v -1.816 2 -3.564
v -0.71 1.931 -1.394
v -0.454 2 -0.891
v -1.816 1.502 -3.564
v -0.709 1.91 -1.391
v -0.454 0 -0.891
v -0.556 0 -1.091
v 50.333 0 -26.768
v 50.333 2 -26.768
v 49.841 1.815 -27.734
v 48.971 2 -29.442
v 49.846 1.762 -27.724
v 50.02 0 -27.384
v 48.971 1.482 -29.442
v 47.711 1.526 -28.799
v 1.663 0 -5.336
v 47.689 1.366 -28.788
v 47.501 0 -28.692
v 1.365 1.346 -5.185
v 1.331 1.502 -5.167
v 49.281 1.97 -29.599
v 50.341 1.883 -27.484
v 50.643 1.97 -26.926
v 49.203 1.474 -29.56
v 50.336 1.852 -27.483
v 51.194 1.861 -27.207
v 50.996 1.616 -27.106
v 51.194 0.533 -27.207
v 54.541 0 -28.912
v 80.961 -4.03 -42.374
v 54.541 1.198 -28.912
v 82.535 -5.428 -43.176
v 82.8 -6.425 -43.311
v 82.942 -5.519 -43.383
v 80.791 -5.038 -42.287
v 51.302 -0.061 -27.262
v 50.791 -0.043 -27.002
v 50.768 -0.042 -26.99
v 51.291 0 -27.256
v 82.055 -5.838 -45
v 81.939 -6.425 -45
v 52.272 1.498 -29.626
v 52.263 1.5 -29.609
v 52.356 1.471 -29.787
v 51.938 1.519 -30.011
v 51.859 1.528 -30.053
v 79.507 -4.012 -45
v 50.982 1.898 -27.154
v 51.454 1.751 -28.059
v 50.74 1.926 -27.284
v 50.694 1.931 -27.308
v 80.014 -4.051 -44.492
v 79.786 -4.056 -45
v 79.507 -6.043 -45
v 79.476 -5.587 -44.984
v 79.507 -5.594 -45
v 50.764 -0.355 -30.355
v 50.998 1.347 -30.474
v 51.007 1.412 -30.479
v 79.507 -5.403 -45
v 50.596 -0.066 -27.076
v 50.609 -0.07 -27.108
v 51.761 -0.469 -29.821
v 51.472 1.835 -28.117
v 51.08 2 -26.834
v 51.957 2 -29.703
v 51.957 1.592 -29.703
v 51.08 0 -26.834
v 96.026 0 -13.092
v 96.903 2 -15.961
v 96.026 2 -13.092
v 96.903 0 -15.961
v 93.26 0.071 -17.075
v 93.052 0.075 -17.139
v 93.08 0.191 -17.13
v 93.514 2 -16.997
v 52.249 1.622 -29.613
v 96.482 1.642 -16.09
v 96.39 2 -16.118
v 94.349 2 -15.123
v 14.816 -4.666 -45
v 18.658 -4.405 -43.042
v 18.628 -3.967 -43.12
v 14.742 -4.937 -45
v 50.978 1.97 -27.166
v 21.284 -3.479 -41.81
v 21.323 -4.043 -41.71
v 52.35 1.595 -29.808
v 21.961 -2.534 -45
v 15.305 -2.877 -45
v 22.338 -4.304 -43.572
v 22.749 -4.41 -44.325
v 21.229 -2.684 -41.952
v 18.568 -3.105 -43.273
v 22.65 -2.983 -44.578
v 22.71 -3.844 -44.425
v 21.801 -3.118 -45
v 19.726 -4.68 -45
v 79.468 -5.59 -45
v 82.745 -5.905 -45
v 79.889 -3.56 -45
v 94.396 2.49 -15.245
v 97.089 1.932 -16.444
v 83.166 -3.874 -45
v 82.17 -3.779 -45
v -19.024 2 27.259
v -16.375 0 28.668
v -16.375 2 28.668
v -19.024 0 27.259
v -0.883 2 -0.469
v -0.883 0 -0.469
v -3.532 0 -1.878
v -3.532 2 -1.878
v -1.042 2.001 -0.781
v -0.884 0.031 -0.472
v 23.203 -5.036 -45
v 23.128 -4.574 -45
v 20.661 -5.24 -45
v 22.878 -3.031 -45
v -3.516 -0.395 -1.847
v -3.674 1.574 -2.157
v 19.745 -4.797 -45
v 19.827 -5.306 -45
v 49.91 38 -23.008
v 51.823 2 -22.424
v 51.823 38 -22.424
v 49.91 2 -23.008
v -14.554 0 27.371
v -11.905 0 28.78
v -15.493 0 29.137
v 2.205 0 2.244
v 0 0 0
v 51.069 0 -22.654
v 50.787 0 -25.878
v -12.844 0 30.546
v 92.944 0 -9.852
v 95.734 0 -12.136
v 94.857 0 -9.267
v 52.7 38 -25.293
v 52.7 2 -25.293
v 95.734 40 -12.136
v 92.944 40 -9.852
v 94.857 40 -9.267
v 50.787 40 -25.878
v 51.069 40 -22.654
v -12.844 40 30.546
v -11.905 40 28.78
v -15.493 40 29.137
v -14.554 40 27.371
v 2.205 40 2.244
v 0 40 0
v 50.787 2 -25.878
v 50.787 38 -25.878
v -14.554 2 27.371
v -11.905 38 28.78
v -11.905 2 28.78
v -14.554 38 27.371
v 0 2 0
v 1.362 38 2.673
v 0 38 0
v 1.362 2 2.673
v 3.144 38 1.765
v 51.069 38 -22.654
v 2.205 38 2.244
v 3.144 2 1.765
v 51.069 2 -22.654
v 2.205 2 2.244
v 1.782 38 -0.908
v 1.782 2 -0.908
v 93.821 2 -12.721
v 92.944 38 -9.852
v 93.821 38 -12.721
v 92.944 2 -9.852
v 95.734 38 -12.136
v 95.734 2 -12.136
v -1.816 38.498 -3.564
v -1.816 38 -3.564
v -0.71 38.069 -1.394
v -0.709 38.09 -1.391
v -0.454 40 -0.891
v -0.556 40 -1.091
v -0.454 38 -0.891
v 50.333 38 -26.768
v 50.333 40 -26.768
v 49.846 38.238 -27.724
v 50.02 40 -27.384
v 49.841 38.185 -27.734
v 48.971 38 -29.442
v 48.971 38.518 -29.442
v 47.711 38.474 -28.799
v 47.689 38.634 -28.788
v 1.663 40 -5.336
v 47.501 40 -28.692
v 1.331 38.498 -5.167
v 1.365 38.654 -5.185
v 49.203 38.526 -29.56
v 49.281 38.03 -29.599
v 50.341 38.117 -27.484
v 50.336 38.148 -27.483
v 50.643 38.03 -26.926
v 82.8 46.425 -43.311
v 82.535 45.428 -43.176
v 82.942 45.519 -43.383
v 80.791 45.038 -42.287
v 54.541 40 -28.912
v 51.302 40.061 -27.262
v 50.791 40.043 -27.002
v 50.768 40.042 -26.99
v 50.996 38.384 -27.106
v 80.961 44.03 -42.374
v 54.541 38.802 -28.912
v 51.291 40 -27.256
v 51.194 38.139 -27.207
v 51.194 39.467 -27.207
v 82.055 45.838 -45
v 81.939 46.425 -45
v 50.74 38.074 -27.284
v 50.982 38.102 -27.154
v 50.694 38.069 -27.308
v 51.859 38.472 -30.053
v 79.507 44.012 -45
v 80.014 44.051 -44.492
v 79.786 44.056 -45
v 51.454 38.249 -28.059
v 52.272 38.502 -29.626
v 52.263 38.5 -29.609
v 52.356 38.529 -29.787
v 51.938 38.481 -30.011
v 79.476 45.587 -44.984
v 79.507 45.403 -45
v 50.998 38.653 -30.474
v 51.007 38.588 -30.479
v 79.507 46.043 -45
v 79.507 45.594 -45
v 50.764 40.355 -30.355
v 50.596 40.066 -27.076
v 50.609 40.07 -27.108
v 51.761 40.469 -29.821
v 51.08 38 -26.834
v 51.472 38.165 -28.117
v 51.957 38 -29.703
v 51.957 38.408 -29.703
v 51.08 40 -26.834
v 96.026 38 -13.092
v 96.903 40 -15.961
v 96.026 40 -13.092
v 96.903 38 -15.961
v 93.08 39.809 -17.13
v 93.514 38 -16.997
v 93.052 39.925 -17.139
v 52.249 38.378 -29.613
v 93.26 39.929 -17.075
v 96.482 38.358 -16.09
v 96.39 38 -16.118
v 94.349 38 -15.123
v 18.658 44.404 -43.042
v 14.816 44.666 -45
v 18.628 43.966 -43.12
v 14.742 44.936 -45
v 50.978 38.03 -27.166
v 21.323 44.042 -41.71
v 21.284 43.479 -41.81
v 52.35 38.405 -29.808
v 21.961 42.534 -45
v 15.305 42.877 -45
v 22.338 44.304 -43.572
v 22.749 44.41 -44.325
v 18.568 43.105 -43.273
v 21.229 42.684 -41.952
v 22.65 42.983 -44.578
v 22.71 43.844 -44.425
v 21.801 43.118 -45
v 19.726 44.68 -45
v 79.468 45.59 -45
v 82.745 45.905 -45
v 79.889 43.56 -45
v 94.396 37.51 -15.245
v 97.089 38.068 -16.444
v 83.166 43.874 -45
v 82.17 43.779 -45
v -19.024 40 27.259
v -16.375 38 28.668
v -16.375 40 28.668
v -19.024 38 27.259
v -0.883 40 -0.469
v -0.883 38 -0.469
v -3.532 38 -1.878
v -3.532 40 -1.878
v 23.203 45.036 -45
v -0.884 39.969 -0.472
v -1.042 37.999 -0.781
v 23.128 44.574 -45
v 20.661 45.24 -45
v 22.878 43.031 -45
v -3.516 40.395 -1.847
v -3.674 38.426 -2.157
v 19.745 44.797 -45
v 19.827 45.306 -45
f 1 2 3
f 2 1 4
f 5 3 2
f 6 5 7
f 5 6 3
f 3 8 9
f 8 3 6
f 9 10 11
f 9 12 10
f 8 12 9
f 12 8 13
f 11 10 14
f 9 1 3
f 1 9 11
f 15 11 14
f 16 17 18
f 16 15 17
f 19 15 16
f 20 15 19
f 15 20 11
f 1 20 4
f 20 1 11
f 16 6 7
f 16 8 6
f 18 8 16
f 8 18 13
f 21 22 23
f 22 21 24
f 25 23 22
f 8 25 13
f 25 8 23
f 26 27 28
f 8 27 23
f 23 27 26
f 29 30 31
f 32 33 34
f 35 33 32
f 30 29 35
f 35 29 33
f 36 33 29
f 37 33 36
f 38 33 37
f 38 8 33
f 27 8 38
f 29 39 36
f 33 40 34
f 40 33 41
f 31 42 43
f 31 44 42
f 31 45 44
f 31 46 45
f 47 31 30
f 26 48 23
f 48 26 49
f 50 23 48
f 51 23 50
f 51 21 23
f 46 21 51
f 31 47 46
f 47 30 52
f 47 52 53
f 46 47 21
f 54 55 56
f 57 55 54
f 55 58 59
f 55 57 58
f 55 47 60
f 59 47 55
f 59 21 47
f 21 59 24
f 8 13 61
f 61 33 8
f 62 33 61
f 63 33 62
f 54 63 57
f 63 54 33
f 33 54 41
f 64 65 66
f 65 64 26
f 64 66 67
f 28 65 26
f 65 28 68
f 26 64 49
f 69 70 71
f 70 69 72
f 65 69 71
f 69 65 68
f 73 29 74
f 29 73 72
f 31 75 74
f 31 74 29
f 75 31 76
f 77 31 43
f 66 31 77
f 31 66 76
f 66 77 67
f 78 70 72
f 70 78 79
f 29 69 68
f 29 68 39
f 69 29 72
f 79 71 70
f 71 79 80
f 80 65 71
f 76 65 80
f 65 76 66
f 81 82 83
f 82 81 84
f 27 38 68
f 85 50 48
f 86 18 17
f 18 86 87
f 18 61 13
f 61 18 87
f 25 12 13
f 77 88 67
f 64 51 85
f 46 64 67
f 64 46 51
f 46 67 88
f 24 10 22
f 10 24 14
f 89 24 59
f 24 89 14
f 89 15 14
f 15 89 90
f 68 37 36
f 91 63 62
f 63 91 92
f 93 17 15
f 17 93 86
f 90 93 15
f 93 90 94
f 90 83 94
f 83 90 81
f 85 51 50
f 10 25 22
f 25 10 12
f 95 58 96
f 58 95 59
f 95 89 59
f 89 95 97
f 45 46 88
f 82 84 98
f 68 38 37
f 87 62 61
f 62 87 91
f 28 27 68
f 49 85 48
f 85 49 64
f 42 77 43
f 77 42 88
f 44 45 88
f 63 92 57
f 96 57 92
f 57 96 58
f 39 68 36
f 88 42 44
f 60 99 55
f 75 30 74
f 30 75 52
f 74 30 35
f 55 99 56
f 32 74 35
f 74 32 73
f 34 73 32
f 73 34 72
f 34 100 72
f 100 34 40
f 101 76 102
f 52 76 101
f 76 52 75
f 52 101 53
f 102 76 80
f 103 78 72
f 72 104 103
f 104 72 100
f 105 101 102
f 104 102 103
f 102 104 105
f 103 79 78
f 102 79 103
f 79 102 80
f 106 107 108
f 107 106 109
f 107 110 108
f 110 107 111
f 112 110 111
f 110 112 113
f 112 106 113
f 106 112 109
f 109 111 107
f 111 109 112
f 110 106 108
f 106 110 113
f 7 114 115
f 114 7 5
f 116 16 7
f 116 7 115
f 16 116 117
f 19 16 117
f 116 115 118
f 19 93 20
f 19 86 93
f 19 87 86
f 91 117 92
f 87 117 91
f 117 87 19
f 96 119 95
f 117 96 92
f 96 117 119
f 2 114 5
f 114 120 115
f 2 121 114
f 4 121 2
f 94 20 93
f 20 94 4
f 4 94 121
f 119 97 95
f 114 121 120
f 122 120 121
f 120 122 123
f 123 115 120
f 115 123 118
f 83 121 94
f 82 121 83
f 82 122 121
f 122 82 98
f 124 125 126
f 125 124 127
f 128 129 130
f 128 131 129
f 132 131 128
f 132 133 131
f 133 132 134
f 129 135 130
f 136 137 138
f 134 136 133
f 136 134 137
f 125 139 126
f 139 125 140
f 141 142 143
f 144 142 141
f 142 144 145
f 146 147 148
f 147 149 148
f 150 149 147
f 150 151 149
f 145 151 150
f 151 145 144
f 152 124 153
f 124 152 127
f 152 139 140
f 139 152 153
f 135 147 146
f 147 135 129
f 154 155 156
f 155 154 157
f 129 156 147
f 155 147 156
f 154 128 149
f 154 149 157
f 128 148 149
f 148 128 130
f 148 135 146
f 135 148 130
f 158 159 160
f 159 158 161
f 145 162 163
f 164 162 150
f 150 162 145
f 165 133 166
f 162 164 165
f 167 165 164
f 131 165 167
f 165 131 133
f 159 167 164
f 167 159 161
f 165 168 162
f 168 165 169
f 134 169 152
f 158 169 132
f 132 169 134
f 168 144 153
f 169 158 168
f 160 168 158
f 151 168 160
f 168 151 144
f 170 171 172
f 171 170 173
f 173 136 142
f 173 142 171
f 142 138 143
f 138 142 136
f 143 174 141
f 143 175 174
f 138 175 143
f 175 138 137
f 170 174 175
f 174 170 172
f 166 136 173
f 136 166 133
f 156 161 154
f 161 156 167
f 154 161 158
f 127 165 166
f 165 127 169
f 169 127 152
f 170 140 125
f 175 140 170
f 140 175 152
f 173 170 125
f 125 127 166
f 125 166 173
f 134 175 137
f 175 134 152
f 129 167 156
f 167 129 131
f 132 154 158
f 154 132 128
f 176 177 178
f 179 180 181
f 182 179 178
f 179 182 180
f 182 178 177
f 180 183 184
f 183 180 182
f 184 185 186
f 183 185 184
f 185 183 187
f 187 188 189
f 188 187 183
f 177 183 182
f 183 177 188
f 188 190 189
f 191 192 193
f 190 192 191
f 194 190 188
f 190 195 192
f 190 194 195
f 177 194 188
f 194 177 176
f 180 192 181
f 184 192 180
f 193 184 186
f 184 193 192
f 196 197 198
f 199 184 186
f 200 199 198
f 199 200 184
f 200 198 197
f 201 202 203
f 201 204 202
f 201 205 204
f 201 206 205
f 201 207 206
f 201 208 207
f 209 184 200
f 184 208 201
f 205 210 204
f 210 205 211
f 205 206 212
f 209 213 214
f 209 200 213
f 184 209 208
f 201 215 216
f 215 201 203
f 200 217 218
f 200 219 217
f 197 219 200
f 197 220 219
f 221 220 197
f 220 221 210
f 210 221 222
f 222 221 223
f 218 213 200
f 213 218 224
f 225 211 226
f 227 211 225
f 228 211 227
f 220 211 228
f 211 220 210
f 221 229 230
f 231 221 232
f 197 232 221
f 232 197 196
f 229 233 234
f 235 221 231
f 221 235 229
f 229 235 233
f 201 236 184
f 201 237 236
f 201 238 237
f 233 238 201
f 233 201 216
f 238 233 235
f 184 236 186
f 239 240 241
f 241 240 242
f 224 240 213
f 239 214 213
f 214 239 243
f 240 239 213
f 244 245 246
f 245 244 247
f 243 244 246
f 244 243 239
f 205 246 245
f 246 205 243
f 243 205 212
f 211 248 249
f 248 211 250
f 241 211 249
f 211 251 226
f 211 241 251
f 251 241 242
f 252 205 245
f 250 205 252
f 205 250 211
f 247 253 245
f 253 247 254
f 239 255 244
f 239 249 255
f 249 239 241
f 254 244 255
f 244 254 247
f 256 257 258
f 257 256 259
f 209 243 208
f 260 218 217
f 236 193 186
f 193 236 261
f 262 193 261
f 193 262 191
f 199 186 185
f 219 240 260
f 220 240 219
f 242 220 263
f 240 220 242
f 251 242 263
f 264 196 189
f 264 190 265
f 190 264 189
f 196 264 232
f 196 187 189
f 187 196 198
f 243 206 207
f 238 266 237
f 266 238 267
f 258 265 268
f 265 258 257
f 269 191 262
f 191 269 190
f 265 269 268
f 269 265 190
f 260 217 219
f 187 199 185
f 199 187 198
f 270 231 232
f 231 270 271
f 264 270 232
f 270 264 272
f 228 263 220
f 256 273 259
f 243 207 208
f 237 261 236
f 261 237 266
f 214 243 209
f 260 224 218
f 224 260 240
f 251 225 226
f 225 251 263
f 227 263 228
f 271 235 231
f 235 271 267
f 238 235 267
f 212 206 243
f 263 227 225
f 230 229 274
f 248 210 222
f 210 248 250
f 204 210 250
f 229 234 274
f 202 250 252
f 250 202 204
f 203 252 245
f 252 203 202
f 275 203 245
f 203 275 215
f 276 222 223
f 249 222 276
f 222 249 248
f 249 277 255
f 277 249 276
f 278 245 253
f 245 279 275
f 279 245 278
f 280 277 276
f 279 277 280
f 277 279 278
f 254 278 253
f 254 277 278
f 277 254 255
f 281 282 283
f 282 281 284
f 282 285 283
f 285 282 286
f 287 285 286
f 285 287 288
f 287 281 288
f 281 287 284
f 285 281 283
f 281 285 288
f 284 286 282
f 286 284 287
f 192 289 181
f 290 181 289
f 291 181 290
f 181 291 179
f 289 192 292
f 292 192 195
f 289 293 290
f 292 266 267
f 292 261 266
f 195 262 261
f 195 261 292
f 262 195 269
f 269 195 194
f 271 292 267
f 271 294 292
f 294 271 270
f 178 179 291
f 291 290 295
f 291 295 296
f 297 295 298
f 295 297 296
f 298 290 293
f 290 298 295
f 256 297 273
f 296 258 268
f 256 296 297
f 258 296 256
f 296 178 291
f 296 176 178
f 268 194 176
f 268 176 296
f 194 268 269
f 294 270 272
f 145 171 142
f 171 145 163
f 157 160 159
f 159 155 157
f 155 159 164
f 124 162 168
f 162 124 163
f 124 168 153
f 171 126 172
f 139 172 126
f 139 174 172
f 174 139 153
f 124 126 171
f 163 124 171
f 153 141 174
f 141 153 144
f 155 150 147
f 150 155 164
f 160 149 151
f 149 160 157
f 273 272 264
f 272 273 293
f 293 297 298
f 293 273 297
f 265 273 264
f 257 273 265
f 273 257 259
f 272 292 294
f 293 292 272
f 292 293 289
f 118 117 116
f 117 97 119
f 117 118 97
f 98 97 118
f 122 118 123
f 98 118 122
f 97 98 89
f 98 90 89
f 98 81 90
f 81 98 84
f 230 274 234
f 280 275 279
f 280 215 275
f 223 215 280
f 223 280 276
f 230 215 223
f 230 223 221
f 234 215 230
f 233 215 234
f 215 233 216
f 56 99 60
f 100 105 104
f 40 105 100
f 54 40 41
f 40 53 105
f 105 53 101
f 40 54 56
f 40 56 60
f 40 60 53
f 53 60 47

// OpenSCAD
angle_body_head=35;
angle_body_rest=-44;

//angle_body_floor=27;
angle_body_floor=27;

length_head=33;
length_body=57;
length_rest=47;

thickness_wood=2;
thickness_stretcher=2;
height_wood=3;

//base
space_between_side_and_base=1;
common_angle_base=0;
spread_angle=10;
front_legs_angle=-48;

chair_width=40;

support_distance=(height_wood+space_between_side_and_base);

module rotate_about(v,a) {
  translate(v) rotate(a) translate(-v) children(0);
}

module rotate_about_debug(v,a) {
  translate(-v) children(0);
}

module sides() {
  //feet
  translate([length_body, 0, 0]) {
    rotate(a=[0,angle_body_rest,0]) {
      cube([length_rest,thickness_wood,height_wood]);
    }
  }

  //body
  cube([length_body,thickness_wood,height_wood]);

  //head
  rotate(a=[0,angle_body_head,0]) {
    translate([-length_head, 0,0]) {
      cube([length_head,thickness_wood,height_wood]);
    }
  }
}



module stretchers() {

  //feet-body stretcher
  translate([length_body, 0, 0]) {
    rotate(a=[0,angle_body_rest,0]) {
      cube([thickness_stretcher,chair_width,height_wood]);
    }
  }

  //head stretcher
  rotate(a=[0,angle_body_head,0]) {
    translate([-length_head, 0,0]) {
      cube([thickness_stretcher,chair_width,height_wood]);
    }
  }

  //head-body stretcher

  cube([thickness_stretcher,chair_width,height_wood]);


  //feet stretcher
  translate([
      length_body + cos(angle_body_rest)*(length_rest -thickness_stretcher) , 
      0,
      -sin(angle_body_rest)*(length_rest -thickness_stretcher) ]) {
    rotate(a=[0,angle_body_rest,0]) {
      cube([thickness_stretcher,chair_width,height_wood]);
    }
  }
}




module base() {

  //body renfort
  translate([0, 0, -support_distance]) {
    cube([length_body,thickness_wood,height_wood]);
  }

  //body leg 
  rotate_about([
      length_body,
      0,
      space_between_side_and_base], 
      [0,0,-spread_angle]) { //10 added for better centering of the feet
    translate([
        length_body - sin(common_angle_base)*height_wood,
        0,
        -cos(common_angle_base)*height_wood - space_between_side_and_base ]) {
      rotate(a=[0,common_angle_base,0]) {
        cube([length_rest-10,thickness_wood,height_wood]);
      }
    }
  }

  //feet renfort
  module feet_base() {
    translate([
        length_body+cos(90+angle_body_rest)*support_distance,
        0,
        -sin(90+angle_body_rest)*support_distance ]) {
      rotate(a=[0,angle_body_rest,0]) {
        cube([length_rest,thickness_wood,height_wood]);
      }
    }
  }

  feet_base();

  //feet leg 
  rotate_about([
      length_body+cos(90+angle_body_rest)*space_between_side_and_base,
      0,
      -sin(90+angle_body_rest)*space_between_side_and_base], 
      [-spread_angle,-10-common_angle_base,0]) { //10 added for better centering of the feet
    translate([
        -sin(angle_body_rest+90)*(length_rest),
        0,
        -cos(90+angle_body_rest)*length_rest]) {
      feet_base();
    }
  }

  //feet front leg
  rotate_about([
      length_body + cos(angle_body_rest)*length_rest + cos(90+angle_body_rest)*support_distance,
      0,
      -sin(angle_body_rest)*length_rest - cos(angle_body_rest)*support_distance], 
      [-spread_angle*1.5,front_legs_angle,0]) { //1.5 is an approximation of the 
      //ratio between the height of the back leg and the front leg (height here being
      //the distance between the legs' floor contact point and the reported point on the 
      //rotation axis of the leg pair)
    feet_base();
  }


  //head renfort
  translate([
      -sin(angle_body_head)*support_distance,
      0,
      -cos(angle_body_head)*support_distance]) {
    rotate(a=[0,angle_body_head,0]) {
      translate([-length_head, 0,0]) {
        cube([length_head,thickness_wood,height_wood]);
      }
    }
  }

  //head leg 
  //using space_between_side_and_base is an approximation, the top of the bar is higher
  rotate_about([0,0,-space_between_side_and_base],[-spread_angle,0,0]){
    translate([
        -sin(angle_body_head)*support_distance + cos(angle_body_head)*length_head ,
        0,
        -cos(angle_body_head)*support_distance - sin(angle_body_head)*length_head]) {
      rotate(a=[0,angle_body_head,0]) {
        translate([-length_head, 0,0]) {
          cube([length_head*2,thickness_wood,height_wood]);
        }
      }
    }
  }


}

difference() {
  rotate(a=[0,angle_body_floor,0]) {
    base();
    stretchers();

    sides();


    translate([0,chair_width,0]) {
      mirror([0,1,0]) {
        base();
        sides();
      }
    }
  }

  //ground
  translate([0,-10,-145]) {
    cube([100, 100, 100]);
  }
}
